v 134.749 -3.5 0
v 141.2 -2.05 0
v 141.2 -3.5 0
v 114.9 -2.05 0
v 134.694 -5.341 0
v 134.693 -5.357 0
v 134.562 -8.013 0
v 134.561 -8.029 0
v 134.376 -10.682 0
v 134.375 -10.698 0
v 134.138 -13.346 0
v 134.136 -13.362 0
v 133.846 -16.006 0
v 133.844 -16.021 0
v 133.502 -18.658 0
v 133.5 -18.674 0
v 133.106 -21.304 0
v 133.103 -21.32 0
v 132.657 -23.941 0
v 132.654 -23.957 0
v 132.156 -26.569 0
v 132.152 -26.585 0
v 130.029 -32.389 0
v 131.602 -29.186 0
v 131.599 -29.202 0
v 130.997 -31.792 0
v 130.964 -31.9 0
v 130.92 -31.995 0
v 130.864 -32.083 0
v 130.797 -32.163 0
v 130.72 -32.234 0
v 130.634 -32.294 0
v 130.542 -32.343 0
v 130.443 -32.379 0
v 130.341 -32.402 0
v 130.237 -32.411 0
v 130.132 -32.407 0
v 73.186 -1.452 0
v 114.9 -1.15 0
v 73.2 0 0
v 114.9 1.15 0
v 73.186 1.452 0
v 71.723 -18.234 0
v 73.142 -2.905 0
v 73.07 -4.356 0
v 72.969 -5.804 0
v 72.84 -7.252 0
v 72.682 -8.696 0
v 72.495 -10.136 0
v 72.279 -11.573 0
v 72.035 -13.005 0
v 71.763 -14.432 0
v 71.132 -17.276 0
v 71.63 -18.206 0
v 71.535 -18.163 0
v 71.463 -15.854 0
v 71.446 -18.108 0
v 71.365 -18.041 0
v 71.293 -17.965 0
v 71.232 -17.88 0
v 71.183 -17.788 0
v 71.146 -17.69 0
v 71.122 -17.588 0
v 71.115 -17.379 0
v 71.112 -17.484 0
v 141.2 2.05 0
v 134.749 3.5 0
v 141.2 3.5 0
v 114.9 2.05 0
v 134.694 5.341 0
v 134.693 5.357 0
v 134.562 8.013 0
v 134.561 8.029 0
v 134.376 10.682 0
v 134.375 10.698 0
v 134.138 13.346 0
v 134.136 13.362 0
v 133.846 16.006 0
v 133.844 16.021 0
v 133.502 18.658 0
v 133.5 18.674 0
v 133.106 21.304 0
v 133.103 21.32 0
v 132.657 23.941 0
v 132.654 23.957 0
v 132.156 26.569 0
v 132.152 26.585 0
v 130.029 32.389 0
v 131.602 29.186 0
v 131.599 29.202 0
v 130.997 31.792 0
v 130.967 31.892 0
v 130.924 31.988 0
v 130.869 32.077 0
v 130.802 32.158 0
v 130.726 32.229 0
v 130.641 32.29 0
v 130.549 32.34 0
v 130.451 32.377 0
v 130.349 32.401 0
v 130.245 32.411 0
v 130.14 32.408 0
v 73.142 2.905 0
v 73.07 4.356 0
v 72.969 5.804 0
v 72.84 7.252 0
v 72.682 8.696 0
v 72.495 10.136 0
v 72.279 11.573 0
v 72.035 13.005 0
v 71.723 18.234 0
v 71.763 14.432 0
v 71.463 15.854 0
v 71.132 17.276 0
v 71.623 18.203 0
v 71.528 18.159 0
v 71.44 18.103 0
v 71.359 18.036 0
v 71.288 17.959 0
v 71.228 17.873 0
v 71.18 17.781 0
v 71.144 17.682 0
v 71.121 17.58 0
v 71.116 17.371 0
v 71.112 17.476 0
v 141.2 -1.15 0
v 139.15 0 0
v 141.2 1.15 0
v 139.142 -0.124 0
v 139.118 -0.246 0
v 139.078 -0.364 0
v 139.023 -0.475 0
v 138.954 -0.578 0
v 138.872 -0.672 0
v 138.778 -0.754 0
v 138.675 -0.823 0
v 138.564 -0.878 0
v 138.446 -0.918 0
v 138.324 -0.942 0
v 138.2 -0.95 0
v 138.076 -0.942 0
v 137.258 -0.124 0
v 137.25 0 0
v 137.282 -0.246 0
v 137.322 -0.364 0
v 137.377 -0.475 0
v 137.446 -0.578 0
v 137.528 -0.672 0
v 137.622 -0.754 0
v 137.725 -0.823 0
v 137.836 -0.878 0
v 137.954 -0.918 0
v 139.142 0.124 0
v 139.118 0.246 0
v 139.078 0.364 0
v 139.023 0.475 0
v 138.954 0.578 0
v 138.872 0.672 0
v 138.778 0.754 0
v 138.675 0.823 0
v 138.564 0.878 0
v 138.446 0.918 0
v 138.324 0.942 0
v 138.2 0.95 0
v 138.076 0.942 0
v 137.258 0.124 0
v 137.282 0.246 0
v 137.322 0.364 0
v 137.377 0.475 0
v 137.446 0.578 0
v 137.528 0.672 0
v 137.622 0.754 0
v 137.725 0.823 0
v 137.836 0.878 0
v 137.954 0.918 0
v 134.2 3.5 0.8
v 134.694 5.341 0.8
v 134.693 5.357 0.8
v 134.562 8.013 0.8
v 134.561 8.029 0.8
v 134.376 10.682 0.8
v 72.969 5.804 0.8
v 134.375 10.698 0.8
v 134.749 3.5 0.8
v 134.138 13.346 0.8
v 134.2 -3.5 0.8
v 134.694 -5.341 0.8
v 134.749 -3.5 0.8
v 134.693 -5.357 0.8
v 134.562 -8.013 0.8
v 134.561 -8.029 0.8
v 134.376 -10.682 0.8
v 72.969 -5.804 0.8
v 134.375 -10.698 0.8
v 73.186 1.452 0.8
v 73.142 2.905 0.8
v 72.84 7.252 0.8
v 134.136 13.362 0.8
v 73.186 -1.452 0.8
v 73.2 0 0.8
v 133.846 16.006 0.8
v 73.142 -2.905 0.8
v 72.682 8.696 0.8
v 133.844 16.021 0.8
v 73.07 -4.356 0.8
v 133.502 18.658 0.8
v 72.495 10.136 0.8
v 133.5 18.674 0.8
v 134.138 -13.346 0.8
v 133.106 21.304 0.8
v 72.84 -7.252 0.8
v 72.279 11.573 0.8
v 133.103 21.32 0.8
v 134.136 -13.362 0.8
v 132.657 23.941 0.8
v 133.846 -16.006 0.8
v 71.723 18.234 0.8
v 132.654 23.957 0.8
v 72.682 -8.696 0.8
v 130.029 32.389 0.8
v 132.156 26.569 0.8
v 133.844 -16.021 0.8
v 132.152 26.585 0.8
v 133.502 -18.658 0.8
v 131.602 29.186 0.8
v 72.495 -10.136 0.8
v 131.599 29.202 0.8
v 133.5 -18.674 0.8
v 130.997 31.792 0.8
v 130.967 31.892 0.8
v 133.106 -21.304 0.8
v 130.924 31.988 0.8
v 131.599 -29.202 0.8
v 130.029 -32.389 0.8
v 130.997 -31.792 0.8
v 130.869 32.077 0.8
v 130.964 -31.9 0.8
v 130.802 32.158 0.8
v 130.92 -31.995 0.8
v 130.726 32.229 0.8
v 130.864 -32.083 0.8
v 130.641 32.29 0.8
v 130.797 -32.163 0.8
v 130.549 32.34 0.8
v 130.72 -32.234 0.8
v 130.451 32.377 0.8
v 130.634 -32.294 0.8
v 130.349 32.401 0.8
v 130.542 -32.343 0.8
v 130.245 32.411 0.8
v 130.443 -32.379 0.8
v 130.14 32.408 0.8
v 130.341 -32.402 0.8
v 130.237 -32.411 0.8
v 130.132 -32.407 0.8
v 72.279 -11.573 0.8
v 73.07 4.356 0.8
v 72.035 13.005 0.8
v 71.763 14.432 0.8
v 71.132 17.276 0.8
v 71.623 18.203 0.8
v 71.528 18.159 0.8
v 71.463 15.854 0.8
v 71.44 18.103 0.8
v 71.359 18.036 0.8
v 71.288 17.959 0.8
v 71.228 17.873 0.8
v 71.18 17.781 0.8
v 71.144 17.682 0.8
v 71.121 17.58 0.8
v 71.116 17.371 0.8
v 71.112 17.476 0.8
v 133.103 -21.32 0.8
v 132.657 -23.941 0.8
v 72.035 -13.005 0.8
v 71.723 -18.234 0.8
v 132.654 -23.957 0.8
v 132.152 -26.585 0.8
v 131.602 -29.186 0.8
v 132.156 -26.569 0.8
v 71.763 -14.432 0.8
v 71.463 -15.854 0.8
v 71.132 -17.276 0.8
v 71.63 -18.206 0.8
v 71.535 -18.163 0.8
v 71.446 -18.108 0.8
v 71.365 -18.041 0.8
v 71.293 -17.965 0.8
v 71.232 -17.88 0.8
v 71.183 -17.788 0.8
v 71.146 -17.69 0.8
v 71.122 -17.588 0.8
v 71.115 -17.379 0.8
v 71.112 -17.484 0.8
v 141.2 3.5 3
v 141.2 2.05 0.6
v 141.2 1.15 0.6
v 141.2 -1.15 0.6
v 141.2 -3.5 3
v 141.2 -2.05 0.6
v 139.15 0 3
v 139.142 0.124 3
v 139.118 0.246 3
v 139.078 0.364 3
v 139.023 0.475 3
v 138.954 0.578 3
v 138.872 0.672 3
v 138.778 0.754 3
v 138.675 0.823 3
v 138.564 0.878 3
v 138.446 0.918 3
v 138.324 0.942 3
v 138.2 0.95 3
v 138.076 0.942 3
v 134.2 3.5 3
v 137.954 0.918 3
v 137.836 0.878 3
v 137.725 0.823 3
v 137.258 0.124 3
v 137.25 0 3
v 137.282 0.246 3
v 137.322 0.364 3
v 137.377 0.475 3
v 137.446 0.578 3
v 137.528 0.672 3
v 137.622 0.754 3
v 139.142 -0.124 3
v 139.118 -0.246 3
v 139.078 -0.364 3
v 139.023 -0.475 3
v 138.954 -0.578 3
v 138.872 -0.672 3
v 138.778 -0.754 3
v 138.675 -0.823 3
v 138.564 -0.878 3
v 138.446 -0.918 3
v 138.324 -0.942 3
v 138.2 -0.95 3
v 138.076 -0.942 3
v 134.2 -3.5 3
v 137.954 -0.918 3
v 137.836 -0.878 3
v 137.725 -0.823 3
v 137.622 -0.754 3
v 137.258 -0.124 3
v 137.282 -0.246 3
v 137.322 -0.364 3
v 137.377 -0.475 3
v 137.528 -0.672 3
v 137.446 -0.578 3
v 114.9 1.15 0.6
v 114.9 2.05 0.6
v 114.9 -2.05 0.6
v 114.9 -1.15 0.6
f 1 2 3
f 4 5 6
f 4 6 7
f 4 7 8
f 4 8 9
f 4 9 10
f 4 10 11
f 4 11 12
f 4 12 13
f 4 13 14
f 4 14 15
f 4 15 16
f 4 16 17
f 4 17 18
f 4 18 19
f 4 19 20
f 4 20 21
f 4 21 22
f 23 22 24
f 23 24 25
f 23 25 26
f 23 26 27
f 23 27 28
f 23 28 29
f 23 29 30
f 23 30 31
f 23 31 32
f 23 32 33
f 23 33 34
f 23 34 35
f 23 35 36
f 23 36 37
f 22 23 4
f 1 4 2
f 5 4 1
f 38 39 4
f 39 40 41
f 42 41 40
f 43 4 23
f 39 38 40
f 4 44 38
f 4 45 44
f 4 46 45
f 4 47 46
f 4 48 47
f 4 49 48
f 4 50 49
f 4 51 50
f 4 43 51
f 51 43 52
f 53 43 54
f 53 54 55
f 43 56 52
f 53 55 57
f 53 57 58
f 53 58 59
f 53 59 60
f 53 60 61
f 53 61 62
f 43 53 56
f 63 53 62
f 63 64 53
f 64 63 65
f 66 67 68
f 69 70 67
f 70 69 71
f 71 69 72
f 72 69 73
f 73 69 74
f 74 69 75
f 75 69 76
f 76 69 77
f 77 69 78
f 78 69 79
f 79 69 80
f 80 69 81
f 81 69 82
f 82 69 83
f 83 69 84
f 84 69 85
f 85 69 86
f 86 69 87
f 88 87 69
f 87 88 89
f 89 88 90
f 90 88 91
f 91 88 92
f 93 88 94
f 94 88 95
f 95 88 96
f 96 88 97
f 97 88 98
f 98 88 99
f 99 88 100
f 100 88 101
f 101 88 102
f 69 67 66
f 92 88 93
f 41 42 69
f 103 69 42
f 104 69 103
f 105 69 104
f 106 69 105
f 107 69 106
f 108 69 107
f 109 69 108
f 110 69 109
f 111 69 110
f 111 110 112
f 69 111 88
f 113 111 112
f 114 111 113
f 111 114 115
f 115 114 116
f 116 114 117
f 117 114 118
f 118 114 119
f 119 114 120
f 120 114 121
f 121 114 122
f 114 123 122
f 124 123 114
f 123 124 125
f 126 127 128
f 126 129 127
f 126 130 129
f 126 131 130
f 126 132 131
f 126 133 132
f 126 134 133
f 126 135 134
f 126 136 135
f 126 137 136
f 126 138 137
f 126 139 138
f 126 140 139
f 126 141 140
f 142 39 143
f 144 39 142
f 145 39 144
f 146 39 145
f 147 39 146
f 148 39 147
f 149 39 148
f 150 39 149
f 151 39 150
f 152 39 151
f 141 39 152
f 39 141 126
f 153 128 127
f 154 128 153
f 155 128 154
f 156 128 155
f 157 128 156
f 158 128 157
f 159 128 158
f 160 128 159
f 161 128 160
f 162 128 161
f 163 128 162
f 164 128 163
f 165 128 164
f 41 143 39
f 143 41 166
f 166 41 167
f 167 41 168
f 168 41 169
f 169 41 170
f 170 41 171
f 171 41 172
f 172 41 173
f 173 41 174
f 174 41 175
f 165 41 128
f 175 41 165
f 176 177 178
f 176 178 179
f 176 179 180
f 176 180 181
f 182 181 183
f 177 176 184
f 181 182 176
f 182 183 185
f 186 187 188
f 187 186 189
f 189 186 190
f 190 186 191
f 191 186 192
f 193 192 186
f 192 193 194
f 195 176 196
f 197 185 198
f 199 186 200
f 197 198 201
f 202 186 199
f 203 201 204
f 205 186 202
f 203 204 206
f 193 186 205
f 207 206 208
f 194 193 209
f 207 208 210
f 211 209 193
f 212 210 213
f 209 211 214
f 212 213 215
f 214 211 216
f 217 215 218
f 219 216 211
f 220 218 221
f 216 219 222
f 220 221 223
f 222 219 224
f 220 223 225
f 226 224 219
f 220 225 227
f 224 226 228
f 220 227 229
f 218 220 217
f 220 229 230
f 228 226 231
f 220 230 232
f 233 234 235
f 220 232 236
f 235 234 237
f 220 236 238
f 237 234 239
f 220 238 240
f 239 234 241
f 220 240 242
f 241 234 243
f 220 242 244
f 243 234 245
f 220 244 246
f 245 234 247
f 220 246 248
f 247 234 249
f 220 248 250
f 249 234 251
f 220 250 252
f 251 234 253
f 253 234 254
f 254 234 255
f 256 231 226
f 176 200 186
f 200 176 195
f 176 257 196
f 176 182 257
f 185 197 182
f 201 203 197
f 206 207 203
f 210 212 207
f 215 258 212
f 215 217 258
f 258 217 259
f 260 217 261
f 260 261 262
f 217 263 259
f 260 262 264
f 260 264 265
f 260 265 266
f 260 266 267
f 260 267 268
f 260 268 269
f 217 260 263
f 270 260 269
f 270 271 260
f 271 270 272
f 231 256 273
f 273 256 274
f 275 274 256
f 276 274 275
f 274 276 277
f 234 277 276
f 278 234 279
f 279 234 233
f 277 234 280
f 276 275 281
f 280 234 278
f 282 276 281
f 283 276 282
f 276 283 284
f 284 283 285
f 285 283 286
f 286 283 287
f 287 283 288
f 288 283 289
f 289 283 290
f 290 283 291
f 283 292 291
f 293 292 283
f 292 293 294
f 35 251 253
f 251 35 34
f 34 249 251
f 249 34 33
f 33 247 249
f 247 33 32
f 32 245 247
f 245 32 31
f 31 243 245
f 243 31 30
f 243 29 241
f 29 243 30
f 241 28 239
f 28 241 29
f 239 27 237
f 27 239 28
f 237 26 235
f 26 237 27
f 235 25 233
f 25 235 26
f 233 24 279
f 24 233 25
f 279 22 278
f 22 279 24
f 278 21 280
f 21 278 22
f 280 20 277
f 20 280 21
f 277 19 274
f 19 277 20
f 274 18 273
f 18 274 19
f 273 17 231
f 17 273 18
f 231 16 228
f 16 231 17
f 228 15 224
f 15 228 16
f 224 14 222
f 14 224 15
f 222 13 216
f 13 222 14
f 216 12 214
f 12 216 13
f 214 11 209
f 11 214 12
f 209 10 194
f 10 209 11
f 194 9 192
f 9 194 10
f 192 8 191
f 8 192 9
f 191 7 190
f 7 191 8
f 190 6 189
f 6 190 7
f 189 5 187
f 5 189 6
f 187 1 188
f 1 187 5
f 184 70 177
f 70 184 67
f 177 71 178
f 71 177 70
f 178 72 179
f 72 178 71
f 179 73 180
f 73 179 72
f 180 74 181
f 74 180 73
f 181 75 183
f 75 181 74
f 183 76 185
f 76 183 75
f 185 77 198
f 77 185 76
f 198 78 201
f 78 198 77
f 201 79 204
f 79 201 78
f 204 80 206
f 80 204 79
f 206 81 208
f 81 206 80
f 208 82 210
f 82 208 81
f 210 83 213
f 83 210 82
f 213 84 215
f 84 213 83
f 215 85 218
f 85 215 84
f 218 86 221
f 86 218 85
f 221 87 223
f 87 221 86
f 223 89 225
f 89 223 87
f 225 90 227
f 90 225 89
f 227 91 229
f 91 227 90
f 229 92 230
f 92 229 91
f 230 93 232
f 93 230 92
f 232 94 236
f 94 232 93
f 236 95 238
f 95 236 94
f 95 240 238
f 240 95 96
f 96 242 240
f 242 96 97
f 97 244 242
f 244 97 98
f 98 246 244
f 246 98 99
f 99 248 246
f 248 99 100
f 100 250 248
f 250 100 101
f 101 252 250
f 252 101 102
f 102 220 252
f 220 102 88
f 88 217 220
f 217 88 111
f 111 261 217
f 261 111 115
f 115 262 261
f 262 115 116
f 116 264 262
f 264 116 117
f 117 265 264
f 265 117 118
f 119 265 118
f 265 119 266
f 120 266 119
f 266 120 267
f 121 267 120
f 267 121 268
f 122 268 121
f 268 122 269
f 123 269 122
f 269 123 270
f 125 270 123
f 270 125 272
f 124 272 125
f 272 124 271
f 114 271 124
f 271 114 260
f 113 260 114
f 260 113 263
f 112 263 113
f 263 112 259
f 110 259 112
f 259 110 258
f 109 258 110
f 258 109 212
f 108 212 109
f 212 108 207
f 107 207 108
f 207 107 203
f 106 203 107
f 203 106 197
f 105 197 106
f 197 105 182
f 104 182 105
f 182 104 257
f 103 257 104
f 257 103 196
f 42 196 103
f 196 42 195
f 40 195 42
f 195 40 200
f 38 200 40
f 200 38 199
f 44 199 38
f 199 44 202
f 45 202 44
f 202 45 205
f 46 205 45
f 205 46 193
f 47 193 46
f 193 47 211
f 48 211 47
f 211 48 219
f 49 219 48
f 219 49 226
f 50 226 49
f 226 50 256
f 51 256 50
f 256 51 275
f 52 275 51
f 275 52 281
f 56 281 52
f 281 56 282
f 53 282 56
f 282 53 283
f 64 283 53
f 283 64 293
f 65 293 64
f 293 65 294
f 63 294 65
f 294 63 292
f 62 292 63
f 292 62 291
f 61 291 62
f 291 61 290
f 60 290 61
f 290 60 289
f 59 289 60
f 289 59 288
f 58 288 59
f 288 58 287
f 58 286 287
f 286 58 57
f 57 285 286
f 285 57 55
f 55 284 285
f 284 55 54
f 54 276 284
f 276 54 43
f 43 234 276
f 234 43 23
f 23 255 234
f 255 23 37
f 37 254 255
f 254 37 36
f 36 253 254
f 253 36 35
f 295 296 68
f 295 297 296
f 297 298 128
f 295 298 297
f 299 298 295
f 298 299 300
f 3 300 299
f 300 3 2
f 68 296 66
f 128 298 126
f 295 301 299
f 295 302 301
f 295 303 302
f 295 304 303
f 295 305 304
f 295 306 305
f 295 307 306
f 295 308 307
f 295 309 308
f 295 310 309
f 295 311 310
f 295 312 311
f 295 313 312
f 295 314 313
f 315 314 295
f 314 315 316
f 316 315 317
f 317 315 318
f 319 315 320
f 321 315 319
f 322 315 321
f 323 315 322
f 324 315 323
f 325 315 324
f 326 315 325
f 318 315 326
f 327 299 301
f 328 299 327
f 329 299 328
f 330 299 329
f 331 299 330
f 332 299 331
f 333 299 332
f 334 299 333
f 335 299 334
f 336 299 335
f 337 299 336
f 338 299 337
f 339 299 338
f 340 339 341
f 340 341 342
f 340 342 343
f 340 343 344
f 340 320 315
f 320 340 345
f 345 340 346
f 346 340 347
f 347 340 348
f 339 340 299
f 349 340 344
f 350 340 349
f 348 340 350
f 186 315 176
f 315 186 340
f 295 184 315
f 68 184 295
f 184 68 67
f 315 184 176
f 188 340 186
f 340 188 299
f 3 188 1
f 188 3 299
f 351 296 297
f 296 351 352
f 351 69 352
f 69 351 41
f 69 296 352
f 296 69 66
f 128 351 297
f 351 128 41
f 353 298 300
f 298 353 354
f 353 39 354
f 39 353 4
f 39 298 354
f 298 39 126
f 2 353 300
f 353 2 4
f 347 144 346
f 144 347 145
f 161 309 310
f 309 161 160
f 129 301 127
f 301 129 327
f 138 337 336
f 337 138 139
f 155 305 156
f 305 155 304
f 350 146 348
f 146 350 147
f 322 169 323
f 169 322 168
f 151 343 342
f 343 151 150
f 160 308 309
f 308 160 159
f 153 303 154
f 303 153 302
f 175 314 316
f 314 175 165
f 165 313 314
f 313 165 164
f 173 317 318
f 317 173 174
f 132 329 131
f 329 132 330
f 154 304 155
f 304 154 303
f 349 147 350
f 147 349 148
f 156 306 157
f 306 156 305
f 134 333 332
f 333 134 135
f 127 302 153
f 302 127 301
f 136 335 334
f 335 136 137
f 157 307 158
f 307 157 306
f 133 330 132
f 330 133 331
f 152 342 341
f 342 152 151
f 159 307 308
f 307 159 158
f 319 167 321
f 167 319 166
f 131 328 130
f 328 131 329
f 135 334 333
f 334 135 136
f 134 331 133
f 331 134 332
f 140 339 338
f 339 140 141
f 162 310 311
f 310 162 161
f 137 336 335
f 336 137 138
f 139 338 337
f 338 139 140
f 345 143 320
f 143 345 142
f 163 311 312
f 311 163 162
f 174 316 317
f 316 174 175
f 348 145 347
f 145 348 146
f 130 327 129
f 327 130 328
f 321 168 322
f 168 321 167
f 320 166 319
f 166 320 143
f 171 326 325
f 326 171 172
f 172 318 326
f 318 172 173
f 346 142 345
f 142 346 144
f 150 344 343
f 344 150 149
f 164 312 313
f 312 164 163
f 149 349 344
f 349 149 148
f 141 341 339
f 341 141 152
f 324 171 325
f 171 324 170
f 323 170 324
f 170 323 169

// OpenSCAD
// Gen-DI — bobbin LID (top flange + locating tab). Print x12, flange face DOWN on the bed.
// CA-glue onto the hub top BEFORE winding. Tab = lap joint into the stator tab pocket; 1.75 mm filament
// pin through pin hole + stator ledge, trim flush. Lead slots carry both leads flush.
include <parameters.scad>;
$fn = 48;
module sector_2d(r_in, r_out, ang) {
    polygon([
        for (a = [-ang/2 : ang/24 : ang/2]) [r_in*cos(a), r_in*sin(a)],
        for (a = [ang/2 : -ang/24 : -ang/2]) [r_out*cos(a), r_out*sin(a)]
    ]);
}
module footprint_2d() { offset(r=wall) sector_2d(coil_id_r, coil_od_r, span_deg); }
module hub_2d()       { offset(delta=-coil_core_inset) sector_2d(coil_id_r, coil_od_r, span_deg); }

difference() {
    union() {
        linear_extrude(flange_t) footprint_2d();
        translate([coil_od_r + 0.2, -tab_w/2, 0]) cube([tab_len, tab_w, tab_h]);
    }
    translate([coil_mount_r, 0, -0.1]) cylinder(d=pin_d, h=tab_h + 1);
    for (y = [lead_y, -lead_y])
        translate([coil_od_r - coil_core_inset - 0.5, y - lead_slot_w/2, -0.1])
            cube([coil_core_inset + tab_len + 2, lead_slot_w, lead_groove_d + 0.1]);
}
